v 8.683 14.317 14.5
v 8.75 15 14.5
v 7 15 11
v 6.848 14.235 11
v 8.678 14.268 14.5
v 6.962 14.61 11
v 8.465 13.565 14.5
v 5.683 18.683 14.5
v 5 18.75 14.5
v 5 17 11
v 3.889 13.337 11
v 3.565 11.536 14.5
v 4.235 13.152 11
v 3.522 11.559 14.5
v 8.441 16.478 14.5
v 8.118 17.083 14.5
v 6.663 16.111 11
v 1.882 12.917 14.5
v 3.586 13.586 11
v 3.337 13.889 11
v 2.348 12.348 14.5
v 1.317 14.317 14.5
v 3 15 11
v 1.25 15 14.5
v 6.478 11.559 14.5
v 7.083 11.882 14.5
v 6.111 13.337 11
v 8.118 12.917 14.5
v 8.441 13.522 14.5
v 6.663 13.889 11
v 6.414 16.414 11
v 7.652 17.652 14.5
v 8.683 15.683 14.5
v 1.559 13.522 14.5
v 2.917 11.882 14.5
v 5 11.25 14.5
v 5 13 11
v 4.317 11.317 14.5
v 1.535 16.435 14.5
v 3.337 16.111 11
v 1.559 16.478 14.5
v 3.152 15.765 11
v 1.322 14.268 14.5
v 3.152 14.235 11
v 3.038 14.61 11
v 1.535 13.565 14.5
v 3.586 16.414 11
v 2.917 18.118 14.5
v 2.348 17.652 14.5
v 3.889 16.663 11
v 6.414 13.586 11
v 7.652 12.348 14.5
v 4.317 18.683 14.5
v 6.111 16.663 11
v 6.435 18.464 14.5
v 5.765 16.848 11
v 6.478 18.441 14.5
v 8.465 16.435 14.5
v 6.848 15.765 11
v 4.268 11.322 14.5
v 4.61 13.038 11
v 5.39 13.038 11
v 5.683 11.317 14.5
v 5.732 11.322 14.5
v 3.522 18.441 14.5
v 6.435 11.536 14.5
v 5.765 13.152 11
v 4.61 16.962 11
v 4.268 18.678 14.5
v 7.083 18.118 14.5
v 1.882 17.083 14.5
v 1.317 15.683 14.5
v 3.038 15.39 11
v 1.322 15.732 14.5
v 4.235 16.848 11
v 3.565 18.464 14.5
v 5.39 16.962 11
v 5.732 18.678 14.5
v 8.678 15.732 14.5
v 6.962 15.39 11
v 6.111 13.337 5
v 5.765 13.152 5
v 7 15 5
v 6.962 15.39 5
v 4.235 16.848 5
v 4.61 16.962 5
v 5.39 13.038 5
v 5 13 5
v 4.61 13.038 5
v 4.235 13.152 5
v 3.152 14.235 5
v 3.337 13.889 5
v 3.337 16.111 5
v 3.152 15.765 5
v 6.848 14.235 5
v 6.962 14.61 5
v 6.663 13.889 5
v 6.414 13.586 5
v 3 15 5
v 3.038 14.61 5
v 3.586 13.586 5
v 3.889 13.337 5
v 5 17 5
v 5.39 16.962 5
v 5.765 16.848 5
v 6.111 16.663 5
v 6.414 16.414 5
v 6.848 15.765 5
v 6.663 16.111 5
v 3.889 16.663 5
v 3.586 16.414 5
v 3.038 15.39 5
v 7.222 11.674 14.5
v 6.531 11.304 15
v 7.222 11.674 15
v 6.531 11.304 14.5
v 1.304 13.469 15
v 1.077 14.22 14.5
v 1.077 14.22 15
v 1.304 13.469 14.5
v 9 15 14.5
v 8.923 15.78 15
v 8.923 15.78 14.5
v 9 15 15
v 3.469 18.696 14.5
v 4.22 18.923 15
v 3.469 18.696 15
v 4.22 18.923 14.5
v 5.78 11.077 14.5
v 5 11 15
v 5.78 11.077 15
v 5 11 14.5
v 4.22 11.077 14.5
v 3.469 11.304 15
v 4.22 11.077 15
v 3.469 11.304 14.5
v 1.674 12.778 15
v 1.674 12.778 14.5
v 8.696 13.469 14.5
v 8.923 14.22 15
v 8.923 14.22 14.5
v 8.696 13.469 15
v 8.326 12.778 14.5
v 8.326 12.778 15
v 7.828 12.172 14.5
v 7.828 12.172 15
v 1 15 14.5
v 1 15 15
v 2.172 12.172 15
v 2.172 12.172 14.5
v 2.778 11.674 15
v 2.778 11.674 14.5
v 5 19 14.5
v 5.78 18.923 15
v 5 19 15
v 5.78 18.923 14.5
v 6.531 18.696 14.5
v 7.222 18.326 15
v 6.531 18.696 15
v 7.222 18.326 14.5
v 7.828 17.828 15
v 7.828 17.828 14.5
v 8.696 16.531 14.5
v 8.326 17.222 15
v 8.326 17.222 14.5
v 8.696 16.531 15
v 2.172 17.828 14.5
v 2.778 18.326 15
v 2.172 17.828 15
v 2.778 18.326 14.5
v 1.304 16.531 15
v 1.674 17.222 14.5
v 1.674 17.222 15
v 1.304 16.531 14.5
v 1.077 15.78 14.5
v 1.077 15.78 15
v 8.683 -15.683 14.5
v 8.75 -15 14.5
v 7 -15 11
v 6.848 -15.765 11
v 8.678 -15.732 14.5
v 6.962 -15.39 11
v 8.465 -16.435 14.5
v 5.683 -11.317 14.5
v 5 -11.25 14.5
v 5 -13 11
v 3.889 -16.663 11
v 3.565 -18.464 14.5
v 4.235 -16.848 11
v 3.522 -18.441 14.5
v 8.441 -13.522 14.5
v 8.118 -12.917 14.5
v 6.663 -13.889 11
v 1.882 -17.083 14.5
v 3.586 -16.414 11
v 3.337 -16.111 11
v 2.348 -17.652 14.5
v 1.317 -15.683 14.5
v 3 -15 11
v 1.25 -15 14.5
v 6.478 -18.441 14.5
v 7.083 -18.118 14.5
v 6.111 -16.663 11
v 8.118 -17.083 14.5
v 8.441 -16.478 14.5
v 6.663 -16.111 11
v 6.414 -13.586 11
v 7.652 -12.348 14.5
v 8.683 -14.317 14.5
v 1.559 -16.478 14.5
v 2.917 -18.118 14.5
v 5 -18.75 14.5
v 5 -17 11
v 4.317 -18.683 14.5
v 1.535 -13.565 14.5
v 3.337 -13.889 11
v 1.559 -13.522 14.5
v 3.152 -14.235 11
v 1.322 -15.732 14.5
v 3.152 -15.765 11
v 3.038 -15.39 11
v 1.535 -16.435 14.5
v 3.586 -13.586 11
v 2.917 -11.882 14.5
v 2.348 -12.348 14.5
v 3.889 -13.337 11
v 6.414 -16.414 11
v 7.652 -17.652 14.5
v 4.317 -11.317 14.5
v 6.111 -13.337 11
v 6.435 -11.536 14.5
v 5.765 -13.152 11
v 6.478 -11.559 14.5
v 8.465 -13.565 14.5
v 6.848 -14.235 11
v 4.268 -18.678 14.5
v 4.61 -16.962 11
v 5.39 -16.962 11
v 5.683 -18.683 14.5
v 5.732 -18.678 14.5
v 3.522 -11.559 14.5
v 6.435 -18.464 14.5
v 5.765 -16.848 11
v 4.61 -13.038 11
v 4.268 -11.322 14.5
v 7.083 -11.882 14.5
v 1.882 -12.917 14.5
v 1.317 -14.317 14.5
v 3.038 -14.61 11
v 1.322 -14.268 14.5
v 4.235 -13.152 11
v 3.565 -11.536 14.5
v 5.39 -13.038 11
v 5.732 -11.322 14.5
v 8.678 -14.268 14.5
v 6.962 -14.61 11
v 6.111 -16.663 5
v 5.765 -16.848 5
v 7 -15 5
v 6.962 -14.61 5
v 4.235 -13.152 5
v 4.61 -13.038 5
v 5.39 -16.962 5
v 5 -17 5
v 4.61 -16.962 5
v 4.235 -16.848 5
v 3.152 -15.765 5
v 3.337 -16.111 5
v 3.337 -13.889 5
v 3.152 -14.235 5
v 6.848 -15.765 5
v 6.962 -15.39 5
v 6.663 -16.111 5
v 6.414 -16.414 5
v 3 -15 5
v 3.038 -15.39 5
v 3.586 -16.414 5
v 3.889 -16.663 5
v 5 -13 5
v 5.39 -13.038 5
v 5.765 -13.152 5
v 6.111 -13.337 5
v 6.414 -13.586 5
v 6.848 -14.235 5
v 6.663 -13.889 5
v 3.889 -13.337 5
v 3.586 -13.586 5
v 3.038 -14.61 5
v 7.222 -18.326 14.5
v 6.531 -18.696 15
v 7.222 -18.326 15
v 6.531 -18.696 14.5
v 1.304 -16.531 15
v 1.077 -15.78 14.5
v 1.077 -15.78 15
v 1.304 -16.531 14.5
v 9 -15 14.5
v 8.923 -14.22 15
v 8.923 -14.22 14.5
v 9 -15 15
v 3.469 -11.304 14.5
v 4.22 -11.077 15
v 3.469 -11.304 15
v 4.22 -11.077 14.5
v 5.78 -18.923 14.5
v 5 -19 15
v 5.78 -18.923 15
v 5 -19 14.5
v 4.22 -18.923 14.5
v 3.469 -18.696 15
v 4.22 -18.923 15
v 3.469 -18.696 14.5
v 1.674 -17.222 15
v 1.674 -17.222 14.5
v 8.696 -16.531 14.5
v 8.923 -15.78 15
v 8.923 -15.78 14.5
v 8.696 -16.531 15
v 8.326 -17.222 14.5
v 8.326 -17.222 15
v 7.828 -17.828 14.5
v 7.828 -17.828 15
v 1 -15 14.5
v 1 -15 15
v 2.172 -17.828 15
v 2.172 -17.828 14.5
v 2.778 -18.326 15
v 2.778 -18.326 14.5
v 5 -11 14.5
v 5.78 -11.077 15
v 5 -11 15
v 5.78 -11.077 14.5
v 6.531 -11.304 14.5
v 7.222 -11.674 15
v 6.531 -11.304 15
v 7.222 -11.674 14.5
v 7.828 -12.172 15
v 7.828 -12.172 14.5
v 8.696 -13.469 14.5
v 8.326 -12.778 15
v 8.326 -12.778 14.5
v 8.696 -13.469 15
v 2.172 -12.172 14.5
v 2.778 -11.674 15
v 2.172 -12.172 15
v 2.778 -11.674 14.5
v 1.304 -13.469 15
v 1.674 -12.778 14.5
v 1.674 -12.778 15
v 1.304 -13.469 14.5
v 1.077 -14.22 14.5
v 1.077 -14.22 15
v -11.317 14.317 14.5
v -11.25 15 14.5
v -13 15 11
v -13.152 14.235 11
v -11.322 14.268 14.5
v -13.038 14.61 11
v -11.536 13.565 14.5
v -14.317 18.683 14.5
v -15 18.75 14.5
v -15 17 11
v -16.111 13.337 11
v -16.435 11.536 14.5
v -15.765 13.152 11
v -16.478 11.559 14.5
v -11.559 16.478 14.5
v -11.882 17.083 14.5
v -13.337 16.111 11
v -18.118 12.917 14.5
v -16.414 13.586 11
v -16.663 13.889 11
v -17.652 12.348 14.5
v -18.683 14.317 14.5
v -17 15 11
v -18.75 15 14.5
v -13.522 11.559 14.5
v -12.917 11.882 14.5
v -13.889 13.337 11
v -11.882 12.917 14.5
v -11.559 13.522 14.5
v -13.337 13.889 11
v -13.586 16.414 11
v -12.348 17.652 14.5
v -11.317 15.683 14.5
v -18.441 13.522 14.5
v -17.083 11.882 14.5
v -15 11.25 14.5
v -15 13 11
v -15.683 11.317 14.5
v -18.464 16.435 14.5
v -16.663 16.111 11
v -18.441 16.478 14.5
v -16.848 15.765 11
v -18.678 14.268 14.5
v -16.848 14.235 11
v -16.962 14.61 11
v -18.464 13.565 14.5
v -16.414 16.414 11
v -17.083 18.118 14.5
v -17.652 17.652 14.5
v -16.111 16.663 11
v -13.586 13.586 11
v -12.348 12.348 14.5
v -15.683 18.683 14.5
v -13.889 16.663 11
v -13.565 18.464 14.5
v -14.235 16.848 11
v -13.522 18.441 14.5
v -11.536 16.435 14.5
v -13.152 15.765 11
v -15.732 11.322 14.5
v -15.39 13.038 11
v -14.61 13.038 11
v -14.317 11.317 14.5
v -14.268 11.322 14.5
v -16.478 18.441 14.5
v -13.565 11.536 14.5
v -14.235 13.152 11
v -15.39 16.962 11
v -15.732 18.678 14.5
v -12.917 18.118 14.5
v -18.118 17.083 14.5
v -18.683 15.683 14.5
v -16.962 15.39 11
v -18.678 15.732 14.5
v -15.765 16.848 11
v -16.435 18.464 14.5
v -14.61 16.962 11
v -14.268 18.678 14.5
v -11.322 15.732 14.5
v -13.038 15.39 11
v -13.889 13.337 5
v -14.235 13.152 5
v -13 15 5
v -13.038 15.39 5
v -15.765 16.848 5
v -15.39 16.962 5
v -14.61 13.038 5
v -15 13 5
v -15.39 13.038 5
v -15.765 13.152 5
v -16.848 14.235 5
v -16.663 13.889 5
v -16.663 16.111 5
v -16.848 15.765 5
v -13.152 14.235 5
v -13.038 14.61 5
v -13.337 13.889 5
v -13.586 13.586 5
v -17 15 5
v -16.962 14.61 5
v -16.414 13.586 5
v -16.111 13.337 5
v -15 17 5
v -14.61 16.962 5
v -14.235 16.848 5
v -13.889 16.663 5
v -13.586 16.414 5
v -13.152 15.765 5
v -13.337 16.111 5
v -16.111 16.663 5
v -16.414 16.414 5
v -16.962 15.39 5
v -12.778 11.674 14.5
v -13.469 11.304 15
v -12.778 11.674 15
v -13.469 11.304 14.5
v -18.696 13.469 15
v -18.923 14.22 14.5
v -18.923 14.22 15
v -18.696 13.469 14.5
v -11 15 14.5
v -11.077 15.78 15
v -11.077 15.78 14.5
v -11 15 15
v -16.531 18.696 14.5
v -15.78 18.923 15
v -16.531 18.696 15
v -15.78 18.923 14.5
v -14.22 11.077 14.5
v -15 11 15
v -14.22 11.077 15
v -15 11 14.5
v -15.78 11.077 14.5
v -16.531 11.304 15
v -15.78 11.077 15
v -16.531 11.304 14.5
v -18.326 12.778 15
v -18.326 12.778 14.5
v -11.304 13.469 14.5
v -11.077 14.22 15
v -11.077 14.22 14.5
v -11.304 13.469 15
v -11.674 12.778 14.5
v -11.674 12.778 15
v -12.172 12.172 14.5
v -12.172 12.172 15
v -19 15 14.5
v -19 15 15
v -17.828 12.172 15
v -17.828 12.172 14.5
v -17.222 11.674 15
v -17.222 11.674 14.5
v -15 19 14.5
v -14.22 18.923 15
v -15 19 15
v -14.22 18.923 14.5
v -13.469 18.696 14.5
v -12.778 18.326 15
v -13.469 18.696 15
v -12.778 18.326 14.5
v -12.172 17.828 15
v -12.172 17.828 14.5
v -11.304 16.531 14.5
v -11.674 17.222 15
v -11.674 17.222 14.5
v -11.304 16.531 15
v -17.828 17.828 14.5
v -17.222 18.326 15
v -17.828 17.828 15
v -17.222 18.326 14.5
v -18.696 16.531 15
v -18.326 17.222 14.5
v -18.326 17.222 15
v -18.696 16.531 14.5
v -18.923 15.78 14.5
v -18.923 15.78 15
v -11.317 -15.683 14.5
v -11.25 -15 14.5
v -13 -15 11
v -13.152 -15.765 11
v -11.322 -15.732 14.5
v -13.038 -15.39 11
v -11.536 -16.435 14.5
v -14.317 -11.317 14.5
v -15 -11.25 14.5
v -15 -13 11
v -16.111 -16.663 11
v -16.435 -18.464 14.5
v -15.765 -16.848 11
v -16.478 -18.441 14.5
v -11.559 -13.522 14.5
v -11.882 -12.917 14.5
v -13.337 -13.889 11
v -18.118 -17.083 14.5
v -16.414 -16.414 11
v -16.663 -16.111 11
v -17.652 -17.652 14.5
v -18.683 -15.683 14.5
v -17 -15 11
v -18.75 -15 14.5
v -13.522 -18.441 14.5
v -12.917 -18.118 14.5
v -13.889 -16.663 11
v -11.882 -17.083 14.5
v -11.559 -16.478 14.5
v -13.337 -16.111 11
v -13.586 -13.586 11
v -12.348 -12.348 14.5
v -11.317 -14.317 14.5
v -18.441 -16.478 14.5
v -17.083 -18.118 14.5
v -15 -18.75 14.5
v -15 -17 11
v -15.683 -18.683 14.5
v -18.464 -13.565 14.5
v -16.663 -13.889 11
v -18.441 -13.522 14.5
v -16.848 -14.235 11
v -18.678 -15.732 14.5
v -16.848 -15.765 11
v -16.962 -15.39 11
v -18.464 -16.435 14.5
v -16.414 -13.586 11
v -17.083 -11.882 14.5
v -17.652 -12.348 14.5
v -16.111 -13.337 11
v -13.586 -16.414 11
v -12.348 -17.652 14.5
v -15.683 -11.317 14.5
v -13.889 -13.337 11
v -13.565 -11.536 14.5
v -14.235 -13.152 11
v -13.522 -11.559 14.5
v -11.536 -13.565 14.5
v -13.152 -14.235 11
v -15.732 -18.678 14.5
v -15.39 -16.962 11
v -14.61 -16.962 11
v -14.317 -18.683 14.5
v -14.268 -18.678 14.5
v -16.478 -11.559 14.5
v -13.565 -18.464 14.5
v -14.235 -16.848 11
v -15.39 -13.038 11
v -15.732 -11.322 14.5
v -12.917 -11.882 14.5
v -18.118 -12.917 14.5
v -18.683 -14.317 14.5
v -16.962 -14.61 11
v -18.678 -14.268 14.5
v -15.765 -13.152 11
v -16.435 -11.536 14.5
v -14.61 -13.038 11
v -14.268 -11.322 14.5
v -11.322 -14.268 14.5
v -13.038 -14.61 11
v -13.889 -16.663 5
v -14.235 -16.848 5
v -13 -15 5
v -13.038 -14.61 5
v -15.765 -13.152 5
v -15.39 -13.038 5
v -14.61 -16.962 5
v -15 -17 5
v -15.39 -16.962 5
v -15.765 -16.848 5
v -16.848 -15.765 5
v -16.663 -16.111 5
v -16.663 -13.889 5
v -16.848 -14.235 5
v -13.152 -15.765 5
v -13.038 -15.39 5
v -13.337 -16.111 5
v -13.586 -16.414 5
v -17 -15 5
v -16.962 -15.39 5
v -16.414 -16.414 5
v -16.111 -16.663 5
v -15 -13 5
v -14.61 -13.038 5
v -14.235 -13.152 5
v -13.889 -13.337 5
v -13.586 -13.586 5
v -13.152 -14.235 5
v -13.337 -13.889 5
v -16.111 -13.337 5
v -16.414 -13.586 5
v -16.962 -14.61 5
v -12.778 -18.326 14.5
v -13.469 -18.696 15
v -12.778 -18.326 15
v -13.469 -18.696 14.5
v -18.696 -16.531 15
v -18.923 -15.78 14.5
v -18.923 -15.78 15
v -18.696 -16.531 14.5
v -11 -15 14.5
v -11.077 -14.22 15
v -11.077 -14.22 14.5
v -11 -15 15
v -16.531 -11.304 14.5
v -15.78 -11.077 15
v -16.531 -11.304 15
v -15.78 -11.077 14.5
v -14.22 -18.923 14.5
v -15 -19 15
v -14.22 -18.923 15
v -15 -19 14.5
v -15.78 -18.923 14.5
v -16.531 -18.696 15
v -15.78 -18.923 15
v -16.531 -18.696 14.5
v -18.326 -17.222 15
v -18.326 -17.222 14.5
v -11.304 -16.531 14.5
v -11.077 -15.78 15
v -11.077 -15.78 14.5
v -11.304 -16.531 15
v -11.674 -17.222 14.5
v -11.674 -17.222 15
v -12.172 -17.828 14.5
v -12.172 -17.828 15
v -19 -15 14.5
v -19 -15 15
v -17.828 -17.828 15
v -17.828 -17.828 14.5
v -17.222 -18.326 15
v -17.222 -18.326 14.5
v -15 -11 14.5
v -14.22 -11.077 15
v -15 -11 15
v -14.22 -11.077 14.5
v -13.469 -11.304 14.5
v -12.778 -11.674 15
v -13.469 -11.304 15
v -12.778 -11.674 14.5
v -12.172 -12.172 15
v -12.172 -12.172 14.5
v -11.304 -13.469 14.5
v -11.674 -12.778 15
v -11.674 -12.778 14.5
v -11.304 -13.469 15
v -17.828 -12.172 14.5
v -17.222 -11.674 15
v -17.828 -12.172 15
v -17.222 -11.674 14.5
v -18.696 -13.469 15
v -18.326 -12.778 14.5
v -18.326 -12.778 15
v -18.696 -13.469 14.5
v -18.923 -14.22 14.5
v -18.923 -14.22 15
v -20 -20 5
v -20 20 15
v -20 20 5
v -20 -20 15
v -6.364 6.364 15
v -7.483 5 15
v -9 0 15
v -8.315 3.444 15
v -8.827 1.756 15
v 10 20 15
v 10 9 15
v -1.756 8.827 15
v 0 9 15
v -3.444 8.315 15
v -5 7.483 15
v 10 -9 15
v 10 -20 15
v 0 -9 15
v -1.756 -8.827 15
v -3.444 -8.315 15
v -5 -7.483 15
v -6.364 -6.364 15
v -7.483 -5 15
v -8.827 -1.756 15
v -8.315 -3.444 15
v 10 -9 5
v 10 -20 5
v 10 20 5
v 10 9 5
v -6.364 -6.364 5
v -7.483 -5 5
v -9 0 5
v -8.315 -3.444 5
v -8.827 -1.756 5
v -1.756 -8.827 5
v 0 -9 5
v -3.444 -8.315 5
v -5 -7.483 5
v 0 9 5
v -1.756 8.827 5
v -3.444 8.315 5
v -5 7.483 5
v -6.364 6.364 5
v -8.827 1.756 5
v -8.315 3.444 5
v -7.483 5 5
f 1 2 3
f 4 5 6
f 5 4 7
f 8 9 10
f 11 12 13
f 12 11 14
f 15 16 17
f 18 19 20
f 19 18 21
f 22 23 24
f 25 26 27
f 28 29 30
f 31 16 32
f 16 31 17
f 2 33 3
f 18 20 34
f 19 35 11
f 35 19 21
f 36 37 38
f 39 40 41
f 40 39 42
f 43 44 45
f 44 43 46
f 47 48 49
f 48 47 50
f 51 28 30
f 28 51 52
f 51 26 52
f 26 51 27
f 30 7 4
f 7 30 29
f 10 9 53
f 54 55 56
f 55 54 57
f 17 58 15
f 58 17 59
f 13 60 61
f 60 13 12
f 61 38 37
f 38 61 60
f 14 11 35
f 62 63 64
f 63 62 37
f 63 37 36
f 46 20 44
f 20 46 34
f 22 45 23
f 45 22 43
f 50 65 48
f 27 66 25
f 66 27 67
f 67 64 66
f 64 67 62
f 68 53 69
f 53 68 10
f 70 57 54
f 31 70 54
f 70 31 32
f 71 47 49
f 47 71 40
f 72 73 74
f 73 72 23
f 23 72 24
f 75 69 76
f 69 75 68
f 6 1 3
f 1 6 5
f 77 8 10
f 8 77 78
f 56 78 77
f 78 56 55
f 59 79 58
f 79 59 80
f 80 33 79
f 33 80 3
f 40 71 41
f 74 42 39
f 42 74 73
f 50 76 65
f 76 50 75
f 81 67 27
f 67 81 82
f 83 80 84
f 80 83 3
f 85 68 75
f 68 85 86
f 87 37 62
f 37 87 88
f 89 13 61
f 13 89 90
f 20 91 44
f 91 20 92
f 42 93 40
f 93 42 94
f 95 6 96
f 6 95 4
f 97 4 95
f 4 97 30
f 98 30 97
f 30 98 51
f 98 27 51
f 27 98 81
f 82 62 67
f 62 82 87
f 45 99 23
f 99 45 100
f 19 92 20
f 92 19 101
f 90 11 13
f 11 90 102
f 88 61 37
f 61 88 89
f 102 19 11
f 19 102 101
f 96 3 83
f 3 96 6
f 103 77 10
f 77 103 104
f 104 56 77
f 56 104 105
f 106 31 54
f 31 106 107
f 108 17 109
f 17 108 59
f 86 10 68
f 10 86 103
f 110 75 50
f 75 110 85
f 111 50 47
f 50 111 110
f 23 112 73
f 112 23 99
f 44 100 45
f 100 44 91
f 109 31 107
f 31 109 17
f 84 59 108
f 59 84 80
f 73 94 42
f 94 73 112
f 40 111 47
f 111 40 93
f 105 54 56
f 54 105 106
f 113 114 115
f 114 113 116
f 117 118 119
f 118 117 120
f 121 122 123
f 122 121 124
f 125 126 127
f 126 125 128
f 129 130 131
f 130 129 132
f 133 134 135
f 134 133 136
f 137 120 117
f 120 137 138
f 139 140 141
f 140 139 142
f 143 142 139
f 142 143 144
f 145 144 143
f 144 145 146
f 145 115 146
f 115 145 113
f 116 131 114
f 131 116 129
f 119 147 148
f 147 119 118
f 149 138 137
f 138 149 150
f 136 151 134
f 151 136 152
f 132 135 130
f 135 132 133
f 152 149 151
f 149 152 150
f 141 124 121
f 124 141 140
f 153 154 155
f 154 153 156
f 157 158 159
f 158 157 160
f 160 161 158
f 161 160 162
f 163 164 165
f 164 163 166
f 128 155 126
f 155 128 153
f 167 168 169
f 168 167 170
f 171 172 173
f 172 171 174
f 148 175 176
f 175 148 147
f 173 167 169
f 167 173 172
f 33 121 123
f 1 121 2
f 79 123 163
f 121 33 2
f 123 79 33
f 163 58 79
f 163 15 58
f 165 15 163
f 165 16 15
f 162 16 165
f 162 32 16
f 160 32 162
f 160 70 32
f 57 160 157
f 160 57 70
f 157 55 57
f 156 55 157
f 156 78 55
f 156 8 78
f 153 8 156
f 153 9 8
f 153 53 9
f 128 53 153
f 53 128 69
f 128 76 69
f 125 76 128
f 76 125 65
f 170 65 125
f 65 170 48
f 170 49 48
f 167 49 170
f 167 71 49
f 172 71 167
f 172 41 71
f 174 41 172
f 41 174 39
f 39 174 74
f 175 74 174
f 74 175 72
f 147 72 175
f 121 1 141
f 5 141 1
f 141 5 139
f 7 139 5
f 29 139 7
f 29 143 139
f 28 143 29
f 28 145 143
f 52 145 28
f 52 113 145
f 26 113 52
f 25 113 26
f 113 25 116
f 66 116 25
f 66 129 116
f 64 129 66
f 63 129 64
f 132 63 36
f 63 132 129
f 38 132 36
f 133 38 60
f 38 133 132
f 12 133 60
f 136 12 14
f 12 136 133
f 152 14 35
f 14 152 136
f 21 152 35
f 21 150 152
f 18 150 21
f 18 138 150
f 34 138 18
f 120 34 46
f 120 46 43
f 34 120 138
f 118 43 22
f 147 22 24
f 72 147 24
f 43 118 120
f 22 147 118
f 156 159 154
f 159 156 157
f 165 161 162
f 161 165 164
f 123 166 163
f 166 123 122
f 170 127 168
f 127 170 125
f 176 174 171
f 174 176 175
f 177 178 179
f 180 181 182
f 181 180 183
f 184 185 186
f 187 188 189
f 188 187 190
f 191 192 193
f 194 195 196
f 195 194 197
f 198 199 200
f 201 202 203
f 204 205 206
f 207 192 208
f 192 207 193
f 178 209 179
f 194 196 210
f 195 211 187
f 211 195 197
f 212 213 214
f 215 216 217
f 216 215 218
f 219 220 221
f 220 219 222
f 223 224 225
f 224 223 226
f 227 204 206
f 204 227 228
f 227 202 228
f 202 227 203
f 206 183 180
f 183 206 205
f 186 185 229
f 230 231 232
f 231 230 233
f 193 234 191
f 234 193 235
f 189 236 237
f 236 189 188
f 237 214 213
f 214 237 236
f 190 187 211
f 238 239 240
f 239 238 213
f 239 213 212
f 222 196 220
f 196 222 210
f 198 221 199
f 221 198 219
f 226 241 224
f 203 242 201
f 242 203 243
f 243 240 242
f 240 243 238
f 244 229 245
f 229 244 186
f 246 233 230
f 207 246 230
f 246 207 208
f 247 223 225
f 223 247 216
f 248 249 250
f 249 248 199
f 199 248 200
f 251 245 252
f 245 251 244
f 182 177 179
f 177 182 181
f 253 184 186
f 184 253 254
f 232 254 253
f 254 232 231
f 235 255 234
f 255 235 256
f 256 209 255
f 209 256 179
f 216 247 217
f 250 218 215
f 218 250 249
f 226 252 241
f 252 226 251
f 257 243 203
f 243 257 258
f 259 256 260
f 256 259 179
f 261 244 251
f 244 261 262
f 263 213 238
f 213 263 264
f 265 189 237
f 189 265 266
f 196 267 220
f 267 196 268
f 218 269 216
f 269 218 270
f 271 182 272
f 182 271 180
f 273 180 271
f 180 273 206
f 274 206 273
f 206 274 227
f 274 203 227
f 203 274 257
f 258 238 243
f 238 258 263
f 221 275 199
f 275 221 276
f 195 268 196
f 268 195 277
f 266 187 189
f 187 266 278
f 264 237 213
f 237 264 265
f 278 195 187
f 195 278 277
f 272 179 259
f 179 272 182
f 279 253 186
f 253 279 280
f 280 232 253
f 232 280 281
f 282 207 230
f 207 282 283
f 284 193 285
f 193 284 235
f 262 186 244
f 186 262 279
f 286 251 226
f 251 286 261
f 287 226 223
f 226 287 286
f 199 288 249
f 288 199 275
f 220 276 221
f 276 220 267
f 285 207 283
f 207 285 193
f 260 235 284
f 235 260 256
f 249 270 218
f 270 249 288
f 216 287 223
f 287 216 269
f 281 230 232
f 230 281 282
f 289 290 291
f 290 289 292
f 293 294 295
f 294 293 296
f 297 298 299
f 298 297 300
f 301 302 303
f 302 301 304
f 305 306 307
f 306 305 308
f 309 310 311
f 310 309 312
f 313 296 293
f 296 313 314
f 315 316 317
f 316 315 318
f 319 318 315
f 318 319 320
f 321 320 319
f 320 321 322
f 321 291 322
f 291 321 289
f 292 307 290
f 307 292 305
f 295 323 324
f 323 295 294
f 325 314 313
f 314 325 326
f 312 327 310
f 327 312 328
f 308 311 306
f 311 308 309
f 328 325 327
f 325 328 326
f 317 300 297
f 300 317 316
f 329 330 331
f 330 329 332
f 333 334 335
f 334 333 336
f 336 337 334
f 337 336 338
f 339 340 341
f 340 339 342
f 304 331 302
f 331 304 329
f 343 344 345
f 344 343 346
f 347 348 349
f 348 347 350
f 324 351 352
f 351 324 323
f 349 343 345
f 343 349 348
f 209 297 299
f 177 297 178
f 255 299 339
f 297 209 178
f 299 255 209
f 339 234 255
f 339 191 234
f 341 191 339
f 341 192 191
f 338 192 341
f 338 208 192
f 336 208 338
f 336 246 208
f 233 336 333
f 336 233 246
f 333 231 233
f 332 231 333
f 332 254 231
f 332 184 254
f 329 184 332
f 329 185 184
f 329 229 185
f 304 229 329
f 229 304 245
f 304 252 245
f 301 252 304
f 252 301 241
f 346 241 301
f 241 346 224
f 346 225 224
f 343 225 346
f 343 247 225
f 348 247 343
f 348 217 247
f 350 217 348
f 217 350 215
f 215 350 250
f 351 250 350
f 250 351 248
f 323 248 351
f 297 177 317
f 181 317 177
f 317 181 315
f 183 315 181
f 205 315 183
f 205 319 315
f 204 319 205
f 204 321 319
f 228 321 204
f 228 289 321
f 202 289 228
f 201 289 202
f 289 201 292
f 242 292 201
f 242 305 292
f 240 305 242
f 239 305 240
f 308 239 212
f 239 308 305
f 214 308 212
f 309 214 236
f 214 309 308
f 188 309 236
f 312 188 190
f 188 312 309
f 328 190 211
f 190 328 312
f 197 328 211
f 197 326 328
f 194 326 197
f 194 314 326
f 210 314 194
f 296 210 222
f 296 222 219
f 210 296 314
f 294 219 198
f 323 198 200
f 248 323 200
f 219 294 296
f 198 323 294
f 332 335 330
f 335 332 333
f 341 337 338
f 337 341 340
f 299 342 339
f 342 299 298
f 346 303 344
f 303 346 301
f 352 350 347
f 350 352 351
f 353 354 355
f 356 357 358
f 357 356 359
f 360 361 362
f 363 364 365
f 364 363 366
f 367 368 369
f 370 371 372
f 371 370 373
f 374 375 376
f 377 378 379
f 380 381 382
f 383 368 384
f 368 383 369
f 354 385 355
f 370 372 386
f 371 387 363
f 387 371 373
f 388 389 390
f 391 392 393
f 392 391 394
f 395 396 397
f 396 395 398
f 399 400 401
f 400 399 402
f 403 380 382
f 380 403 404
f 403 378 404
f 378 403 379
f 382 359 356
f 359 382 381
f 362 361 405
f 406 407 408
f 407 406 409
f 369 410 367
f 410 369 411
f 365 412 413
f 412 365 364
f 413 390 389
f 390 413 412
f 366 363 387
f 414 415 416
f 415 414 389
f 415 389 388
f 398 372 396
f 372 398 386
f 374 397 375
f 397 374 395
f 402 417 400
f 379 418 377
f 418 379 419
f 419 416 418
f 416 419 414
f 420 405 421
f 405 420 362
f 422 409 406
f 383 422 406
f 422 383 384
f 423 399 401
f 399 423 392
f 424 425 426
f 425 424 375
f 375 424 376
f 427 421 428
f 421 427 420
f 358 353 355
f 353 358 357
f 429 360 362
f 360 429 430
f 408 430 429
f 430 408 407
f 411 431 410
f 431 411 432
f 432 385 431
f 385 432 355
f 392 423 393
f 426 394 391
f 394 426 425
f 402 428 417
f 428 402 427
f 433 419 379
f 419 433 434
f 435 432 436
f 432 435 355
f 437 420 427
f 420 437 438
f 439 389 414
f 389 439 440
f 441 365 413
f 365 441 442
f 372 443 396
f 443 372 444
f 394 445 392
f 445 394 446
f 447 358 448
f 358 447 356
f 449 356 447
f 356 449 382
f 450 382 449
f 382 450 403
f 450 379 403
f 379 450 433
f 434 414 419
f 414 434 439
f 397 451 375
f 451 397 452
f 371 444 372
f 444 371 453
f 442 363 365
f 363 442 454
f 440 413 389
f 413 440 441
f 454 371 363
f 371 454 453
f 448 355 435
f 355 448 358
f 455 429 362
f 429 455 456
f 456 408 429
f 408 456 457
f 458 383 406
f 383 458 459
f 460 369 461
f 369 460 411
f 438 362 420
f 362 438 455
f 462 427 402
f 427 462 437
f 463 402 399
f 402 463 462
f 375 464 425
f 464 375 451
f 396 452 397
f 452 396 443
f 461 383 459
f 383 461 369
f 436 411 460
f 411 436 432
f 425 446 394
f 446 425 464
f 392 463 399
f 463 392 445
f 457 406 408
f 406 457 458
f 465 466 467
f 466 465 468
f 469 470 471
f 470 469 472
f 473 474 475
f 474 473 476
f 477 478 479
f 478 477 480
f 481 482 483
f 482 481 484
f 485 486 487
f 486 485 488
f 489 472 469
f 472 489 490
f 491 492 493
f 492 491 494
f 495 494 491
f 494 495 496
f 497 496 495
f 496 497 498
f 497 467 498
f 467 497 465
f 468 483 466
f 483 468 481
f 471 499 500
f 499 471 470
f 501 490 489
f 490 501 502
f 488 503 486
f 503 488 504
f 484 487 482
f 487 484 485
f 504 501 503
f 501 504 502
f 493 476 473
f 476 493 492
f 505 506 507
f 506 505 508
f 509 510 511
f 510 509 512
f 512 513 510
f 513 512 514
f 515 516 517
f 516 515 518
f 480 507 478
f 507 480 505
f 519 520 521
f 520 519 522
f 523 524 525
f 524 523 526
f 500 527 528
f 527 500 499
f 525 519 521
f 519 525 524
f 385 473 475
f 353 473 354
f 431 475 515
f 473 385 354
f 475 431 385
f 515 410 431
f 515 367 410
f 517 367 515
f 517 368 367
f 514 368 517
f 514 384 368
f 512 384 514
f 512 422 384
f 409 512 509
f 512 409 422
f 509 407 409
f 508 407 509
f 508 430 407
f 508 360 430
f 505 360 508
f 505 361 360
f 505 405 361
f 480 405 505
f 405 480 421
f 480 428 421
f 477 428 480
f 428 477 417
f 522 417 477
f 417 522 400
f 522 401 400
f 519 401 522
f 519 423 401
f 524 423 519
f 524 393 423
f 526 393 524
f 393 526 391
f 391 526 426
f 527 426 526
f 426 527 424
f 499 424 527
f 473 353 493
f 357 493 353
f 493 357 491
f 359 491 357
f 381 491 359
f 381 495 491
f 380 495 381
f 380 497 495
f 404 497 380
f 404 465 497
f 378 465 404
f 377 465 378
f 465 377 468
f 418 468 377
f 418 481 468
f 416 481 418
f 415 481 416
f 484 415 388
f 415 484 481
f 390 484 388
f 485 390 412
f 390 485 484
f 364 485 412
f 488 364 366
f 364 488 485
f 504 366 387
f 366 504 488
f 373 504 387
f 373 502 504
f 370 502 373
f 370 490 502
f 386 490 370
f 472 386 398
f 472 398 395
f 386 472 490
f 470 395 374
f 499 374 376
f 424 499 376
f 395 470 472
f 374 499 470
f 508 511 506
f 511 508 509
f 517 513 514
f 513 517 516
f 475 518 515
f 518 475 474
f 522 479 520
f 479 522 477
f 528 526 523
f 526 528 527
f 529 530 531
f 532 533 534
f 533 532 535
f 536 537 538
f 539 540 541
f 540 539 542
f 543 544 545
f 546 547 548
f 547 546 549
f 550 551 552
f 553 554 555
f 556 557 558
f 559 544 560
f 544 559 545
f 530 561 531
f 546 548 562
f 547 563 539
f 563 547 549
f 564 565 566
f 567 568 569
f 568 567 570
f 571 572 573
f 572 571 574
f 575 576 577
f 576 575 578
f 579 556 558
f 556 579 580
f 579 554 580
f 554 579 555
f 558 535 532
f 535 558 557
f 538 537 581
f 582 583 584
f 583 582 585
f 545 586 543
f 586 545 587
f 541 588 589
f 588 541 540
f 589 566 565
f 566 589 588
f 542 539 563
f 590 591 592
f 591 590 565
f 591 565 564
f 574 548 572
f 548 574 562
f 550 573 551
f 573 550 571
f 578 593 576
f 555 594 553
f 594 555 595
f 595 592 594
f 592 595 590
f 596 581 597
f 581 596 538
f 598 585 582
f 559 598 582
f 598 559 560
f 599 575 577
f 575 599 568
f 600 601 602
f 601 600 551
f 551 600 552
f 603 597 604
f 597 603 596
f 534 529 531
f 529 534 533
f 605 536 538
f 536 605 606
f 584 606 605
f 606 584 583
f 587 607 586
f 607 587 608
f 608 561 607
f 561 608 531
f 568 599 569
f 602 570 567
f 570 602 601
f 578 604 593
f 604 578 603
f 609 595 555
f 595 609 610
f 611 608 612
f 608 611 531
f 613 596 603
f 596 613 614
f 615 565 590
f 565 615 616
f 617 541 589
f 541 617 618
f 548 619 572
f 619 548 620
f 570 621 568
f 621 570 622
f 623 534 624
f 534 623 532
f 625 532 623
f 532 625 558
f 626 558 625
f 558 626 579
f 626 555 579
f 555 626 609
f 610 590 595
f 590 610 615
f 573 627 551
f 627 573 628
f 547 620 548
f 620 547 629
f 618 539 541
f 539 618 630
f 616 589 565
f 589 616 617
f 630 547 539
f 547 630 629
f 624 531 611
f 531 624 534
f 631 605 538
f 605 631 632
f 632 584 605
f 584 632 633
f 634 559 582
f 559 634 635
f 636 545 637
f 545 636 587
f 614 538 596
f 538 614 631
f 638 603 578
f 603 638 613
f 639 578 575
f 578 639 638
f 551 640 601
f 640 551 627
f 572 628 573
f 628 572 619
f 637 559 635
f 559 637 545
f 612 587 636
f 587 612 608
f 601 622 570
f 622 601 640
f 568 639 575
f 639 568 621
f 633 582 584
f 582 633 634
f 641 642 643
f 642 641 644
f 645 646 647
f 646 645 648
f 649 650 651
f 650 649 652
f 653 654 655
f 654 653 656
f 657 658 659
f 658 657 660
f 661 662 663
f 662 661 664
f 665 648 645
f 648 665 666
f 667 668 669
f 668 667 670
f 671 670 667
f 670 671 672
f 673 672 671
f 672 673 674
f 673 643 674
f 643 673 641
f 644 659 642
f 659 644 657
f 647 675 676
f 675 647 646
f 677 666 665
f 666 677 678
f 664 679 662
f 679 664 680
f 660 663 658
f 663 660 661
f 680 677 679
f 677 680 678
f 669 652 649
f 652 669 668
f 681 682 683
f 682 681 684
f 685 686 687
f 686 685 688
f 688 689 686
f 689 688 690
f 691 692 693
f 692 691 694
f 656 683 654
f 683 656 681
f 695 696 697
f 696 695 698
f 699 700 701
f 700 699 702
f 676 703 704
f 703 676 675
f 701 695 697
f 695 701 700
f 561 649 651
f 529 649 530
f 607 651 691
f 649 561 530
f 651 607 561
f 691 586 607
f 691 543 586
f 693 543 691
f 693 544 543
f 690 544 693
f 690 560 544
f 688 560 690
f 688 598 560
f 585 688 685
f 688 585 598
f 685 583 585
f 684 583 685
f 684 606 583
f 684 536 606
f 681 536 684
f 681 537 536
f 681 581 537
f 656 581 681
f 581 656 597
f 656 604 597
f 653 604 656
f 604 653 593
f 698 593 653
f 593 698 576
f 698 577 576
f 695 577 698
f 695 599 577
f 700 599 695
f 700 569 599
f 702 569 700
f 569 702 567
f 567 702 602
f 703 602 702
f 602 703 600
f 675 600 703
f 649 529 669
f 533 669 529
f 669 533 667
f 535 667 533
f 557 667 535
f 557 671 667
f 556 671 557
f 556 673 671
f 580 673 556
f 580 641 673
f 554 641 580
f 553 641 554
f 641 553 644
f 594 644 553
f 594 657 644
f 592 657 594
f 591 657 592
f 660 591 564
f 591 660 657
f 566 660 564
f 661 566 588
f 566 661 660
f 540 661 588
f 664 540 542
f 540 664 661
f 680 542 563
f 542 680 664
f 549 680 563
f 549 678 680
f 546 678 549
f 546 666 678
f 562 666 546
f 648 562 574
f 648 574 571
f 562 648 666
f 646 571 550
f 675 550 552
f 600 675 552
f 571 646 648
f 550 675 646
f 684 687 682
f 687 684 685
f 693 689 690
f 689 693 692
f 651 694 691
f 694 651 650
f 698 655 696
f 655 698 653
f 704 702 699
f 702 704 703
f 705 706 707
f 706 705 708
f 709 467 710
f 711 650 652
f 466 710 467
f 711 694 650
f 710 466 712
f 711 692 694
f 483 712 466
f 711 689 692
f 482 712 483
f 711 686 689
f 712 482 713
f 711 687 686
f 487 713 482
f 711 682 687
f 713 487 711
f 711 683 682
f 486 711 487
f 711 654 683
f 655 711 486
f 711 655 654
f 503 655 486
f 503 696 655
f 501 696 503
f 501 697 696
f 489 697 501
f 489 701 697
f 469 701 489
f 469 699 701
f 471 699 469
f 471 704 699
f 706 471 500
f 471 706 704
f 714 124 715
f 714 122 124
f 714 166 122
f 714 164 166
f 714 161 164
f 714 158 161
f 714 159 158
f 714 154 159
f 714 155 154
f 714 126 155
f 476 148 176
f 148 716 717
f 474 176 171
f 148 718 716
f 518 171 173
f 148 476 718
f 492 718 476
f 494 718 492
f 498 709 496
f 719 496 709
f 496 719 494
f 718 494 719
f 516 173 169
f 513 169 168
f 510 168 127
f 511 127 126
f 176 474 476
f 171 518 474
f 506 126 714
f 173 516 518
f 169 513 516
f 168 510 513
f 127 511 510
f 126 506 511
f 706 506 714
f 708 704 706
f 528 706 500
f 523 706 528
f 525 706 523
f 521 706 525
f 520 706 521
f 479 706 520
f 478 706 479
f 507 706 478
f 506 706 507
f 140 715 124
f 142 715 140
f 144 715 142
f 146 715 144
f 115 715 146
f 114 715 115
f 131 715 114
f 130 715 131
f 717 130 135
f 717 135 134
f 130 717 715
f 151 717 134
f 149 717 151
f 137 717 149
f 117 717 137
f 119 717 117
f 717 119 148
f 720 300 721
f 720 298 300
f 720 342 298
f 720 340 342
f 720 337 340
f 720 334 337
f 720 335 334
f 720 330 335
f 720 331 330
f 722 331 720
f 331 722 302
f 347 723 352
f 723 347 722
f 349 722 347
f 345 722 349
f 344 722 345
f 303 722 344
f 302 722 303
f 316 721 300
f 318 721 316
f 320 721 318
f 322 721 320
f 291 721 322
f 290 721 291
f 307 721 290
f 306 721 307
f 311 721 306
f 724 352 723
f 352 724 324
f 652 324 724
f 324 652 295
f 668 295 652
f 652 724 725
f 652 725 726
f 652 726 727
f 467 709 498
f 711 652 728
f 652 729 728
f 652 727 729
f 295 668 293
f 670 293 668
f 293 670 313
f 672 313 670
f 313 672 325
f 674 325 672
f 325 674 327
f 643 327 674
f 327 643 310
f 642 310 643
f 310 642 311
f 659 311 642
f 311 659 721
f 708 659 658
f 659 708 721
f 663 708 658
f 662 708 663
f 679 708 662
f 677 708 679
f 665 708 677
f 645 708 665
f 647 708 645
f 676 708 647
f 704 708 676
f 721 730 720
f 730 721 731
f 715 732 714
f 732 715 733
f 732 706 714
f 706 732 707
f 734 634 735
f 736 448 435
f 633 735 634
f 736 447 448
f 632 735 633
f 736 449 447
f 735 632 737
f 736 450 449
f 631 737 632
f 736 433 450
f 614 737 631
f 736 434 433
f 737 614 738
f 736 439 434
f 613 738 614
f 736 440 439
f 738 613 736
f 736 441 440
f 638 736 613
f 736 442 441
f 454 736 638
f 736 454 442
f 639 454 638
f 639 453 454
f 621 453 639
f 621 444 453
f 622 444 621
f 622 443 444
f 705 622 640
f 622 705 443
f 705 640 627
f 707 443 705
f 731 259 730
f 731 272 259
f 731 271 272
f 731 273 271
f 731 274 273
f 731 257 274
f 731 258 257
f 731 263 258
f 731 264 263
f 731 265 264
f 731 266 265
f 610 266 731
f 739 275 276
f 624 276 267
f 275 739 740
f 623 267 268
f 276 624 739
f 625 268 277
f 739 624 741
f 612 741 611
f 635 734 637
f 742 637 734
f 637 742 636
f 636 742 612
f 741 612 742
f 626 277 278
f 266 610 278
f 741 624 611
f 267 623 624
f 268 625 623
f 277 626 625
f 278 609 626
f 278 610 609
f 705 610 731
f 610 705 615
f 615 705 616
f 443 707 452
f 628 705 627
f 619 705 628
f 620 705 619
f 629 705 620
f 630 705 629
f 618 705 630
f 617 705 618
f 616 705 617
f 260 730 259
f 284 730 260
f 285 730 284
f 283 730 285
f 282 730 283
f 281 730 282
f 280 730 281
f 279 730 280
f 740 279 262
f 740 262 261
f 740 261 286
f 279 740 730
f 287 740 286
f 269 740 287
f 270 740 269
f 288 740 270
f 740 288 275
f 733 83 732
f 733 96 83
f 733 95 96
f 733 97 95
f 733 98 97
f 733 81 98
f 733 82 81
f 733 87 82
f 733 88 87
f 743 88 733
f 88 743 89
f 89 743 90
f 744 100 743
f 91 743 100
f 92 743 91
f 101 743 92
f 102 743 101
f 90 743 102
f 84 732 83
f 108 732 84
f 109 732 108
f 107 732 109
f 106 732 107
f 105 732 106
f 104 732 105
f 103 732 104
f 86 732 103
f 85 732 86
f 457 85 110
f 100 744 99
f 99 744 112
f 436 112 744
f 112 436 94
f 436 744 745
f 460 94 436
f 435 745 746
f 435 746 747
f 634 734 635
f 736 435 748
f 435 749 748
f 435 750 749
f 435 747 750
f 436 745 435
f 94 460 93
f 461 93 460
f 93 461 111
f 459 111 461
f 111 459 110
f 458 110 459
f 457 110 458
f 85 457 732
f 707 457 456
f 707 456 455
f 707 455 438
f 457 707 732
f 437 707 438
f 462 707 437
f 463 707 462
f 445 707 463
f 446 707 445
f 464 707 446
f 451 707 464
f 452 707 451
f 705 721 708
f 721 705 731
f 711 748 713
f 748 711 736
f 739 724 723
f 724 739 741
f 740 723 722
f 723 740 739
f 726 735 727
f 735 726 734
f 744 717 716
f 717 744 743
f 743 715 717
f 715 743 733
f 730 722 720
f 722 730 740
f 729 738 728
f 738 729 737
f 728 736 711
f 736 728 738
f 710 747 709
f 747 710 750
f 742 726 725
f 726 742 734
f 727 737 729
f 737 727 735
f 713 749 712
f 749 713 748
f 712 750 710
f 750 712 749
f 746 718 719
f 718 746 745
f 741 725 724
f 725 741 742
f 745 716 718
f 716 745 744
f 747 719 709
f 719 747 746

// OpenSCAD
$fn=32;
difference(){
translate([-5,0,15-5])cube([30,40,10],center=true);
hull(){
cylinder(r=18/2,h=40);
translate([20,0,0])cylinder(r=18/2,h=40);
}

translate([5,15,25-10])tornillo();
translate([5,-15,25-10])tornillo();
translate([-15,15,25-10])tornillo();
translate([-15,-15,25-10])tornillo();
}
module tornillo(){
    color("blue")
rotate([180,0,0]){
cylinder(r1=8/2,r2=4/2,h=4);
cylinder(r=4/2,h=50);
translate([0,0,-9.5])cylinder(r=8/2,h=10);
}
}
